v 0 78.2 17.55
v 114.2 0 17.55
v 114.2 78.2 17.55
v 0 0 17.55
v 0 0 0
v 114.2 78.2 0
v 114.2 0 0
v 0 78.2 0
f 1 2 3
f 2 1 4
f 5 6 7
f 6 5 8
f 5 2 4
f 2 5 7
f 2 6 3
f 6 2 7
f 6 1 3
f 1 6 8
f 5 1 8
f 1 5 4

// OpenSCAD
// Opentrons 96 Deep Well Heater-Shaker Adapter
// loadName: opentrons_96_deep_well_adapter
// Auto-generated by labware_to_stl.py from Opentrons V2 labware definition

$fn = 32;

difference() {
    // ── Labware body ──────────────────────────────────────────────
    cube([114.2000, 78.2000, 17.5500]);

    // ── Well cutouts ──────────────────────────────────────────────
}
